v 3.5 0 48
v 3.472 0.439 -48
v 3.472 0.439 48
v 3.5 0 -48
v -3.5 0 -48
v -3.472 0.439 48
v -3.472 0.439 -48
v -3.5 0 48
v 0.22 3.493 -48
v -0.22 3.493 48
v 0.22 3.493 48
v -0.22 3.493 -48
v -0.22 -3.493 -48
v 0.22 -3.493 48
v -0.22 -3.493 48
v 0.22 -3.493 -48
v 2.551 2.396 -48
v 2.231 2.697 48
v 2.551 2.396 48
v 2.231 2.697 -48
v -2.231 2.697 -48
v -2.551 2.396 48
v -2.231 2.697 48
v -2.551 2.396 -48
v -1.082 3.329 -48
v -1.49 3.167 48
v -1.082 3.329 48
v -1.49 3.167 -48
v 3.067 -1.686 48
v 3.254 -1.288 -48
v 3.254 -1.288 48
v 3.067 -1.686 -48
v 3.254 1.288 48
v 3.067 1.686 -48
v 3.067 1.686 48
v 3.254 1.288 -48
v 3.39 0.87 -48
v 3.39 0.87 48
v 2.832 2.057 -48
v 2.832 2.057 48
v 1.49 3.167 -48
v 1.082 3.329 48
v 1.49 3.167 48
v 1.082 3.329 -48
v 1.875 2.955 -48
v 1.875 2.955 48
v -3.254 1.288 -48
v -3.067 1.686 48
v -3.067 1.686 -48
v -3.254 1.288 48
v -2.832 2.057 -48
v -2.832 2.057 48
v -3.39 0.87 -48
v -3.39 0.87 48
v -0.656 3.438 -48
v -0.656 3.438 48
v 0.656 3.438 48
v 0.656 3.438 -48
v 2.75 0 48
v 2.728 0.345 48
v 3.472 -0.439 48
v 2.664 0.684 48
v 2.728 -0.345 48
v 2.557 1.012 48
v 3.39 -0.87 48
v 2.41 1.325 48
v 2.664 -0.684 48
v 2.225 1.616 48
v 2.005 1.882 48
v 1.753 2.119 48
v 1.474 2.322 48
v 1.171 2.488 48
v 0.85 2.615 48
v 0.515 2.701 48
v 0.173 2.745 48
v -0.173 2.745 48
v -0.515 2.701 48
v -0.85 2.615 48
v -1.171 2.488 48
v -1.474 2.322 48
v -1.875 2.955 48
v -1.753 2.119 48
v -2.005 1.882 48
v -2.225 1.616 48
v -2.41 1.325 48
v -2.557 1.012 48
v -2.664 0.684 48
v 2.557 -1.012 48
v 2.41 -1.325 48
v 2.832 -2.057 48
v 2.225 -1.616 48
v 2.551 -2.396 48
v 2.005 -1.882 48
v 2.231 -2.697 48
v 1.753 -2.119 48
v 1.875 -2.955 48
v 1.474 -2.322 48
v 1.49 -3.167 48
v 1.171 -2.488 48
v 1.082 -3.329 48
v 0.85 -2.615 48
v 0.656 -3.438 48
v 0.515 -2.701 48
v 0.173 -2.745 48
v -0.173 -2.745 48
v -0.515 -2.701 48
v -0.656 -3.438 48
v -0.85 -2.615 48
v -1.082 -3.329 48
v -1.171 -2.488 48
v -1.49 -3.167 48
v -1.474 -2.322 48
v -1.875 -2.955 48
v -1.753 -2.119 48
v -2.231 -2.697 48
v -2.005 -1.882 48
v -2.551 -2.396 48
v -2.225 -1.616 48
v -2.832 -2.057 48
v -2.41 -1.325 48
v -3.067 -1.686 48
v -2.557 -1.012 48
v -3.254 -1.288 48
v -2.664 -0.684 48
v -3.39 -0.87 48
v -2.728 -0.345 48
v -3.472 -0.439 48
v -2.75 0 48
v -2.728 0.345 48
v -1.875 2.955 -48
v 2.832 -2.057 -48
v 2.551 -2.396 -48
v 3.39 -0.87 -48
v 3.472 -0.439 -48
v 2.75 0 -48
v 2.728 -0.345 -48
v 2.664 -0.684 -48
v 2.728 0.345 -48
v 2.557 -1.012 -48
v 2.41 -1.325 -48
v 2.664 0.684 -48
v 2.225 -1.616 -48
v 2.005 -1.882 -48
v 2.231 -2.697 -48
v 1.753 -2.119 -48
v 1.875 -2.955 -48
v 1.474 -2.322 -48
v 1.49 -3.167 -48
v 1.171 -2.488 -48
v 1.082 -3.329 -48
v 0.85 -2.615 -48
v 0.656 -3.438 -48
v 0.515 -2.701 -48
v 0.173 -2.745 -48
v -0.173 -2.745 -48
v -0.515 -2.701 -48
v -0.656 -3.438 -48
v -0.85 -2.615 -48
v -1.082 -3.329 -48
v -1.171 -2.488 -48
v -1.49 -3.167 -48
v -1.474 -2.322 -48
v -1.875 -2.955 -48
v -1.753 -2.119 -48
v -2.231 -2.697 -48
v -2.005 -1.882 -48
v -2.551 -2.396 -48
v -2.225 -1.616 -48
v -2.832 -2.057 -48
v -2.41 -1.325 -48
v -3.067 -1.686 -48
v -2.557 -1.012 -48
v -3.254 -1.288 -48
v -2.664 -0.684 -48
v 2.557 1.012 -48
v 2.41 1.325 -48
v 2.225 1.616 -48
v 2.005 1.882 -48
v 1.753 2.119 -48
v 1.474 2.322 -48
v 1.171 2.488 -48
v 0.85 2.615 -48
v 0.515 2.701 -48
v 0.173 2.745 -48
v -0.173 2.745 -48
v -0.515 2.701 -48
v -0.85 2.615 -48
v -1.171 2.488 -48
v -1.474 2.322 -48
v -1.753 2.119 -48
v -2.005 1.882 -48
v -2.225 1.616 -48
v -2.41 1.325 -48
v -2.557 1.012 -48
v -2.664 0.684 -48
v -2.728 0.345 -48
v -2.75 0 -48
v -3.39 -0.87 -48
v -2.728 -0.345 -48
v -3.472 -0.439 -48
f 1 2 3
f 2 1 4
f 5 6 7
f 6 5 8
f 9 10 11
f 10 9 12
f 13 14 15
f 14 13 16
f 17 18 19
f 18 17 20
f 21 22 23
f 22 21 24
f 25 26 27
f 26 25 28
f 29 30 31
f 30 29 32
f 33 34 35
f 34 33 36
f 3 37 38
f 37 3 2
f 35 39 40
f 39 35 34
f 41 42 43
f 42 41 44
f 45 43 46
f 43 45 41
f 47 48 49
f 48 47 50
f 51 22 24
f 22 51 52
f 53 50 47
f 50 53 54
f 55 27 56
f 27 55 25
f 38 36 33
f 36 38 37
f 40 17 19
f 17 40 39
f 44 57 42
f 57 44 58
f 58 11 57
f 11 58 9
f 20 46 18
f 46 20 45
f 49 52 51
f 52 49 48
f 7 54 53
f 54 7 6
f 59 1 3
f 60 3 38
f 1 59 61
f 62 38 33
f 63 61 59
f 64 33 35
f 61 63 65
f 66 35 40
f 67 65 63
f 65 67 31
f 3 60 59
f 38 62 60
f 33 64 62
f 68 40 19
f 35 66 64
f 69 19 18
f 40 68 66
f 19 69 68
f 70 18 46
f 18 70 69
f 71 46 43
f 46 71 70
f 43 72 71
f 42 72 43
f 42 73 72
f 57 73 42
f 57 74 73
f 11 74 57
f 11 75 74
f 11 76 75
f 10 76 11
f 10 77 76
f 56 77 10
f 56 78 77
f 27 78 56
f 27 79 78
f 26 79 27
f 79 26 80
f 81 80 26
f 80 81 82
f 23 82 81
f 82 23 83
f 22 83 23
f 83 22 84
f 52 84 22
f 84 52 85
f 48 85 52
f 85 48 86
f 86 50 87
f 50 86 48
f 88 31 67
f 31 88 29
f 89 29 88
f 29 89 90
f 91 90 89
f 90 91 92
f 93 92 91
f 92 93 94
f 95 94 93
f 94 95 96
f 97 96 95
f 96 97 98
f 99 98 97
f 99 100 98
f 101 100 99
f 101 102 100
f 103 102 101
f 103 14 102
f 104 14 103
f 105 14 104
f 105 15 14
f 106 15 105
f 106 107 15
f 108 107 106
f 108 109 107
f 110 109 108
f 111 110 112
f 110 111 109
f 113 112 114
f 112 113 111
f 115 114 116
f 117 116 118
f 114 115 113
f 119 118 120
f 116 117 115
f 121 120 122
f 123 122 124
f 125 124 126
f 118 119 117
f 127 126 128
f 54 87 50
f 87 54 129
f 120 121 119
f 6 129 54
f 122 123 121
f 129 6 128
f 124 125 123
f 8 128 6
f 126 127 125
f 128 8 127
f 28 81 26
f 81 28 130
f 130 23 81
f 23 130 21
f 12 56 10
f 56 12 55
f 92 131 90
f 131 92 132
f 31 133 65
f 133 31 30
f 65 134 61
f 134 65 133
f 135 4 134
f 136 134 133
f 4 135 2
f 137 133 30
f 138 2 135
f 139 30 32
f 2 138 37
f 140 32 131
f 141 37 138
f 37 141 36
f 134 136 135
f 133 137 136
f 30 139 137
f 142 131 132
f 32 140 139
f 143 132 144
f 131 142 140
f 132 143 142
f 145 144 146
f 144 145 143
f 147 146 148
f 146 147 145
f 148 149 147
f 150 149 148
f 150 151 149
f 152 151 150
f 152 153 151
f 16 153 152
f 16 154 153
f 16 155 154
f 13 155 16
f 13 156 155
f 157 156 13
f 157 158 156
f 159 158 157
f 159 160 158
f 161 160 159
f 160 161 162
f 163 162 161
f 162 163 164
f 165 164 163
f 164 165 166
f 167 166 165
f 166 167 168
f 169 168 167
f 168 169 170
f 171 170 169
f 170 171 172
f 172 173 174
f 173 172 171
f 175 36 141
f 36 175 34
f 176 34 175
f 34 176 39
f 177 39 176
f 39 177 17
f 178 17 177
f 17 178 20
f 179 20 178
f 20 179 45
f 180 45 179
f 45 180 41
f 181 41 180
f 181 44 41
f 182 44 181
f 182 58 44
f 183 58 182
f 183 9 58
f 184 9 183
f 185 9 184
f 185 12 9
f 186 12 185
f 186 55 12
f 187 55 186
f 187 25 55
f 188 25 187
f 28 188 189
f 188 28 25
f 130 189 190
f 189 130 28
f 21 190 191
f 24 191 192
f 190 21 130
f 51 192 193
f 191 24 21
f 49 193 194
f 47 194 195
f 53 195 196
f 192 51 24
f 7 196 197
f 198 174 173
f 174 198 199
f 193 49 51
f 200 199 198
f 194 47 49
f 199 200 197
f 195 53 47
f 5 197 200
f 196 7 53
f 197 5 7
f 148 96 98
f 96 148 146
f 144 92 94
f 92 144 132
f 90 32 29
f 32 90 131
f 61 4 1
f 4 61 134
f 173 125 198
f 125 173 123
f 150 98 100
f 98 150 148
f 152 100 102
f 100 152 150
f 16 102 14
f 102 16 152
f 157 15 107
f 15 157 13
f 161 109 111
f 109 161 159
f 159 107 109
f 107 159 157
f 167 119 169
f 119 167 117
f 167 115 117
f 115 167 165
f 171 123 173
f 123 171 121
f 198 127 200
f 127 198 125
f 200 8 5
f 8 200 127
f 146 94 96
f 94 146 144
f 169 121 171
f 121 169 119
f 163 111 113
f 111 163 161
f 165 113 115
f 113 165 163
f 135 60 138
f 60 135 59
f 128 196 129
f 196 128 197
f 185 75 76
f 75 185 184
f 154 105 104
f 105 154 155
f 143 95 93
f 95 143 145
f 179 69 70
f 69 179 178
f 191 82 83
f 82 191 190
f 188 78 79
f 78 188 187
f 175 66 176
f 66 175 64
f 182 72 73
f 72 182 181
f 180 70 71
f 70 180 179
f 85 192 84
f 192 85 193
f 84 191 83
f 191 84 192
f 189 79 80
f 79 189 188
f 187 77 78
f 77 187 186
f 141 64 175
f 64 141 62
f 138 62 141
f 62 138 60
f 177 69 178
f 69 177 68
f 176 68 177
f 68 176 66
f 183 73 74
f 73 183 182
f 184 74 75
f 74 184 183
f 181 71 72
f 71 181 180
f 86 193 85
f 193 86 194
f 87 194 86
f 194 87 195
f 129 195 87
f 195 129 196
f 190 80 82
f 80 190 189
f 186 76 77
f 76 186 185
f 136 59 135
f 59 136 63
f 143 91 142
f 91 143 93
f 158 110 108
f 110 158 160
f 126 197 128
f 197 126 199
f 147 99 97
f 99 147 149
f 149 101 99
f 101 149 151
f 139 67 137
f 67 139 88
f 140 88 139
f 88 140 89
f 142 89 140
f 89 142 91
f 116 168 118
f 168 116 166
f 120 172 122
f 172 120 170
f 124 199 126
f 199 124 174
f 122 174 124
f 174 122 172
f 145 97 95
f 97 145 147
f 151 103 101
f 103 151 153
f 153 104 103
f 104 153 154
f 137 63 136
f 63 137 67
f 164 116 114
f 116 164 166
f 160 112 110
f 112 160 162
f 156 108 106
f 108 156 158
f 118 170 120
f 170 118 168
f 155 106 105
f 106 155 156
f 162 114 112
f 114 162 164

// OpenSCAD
$fn = 50;


difference() {
	union() {
		translate(v = [0, 0, -48.0000000000]) {
			cylinder(h = 96, r = 3.5000000000);
		}
	}
	union() {
		translate(v = [0, 0, -100.0000000000]) {
			cylinder(h = 200, r = 2.7500000000);
		}
	}
}
